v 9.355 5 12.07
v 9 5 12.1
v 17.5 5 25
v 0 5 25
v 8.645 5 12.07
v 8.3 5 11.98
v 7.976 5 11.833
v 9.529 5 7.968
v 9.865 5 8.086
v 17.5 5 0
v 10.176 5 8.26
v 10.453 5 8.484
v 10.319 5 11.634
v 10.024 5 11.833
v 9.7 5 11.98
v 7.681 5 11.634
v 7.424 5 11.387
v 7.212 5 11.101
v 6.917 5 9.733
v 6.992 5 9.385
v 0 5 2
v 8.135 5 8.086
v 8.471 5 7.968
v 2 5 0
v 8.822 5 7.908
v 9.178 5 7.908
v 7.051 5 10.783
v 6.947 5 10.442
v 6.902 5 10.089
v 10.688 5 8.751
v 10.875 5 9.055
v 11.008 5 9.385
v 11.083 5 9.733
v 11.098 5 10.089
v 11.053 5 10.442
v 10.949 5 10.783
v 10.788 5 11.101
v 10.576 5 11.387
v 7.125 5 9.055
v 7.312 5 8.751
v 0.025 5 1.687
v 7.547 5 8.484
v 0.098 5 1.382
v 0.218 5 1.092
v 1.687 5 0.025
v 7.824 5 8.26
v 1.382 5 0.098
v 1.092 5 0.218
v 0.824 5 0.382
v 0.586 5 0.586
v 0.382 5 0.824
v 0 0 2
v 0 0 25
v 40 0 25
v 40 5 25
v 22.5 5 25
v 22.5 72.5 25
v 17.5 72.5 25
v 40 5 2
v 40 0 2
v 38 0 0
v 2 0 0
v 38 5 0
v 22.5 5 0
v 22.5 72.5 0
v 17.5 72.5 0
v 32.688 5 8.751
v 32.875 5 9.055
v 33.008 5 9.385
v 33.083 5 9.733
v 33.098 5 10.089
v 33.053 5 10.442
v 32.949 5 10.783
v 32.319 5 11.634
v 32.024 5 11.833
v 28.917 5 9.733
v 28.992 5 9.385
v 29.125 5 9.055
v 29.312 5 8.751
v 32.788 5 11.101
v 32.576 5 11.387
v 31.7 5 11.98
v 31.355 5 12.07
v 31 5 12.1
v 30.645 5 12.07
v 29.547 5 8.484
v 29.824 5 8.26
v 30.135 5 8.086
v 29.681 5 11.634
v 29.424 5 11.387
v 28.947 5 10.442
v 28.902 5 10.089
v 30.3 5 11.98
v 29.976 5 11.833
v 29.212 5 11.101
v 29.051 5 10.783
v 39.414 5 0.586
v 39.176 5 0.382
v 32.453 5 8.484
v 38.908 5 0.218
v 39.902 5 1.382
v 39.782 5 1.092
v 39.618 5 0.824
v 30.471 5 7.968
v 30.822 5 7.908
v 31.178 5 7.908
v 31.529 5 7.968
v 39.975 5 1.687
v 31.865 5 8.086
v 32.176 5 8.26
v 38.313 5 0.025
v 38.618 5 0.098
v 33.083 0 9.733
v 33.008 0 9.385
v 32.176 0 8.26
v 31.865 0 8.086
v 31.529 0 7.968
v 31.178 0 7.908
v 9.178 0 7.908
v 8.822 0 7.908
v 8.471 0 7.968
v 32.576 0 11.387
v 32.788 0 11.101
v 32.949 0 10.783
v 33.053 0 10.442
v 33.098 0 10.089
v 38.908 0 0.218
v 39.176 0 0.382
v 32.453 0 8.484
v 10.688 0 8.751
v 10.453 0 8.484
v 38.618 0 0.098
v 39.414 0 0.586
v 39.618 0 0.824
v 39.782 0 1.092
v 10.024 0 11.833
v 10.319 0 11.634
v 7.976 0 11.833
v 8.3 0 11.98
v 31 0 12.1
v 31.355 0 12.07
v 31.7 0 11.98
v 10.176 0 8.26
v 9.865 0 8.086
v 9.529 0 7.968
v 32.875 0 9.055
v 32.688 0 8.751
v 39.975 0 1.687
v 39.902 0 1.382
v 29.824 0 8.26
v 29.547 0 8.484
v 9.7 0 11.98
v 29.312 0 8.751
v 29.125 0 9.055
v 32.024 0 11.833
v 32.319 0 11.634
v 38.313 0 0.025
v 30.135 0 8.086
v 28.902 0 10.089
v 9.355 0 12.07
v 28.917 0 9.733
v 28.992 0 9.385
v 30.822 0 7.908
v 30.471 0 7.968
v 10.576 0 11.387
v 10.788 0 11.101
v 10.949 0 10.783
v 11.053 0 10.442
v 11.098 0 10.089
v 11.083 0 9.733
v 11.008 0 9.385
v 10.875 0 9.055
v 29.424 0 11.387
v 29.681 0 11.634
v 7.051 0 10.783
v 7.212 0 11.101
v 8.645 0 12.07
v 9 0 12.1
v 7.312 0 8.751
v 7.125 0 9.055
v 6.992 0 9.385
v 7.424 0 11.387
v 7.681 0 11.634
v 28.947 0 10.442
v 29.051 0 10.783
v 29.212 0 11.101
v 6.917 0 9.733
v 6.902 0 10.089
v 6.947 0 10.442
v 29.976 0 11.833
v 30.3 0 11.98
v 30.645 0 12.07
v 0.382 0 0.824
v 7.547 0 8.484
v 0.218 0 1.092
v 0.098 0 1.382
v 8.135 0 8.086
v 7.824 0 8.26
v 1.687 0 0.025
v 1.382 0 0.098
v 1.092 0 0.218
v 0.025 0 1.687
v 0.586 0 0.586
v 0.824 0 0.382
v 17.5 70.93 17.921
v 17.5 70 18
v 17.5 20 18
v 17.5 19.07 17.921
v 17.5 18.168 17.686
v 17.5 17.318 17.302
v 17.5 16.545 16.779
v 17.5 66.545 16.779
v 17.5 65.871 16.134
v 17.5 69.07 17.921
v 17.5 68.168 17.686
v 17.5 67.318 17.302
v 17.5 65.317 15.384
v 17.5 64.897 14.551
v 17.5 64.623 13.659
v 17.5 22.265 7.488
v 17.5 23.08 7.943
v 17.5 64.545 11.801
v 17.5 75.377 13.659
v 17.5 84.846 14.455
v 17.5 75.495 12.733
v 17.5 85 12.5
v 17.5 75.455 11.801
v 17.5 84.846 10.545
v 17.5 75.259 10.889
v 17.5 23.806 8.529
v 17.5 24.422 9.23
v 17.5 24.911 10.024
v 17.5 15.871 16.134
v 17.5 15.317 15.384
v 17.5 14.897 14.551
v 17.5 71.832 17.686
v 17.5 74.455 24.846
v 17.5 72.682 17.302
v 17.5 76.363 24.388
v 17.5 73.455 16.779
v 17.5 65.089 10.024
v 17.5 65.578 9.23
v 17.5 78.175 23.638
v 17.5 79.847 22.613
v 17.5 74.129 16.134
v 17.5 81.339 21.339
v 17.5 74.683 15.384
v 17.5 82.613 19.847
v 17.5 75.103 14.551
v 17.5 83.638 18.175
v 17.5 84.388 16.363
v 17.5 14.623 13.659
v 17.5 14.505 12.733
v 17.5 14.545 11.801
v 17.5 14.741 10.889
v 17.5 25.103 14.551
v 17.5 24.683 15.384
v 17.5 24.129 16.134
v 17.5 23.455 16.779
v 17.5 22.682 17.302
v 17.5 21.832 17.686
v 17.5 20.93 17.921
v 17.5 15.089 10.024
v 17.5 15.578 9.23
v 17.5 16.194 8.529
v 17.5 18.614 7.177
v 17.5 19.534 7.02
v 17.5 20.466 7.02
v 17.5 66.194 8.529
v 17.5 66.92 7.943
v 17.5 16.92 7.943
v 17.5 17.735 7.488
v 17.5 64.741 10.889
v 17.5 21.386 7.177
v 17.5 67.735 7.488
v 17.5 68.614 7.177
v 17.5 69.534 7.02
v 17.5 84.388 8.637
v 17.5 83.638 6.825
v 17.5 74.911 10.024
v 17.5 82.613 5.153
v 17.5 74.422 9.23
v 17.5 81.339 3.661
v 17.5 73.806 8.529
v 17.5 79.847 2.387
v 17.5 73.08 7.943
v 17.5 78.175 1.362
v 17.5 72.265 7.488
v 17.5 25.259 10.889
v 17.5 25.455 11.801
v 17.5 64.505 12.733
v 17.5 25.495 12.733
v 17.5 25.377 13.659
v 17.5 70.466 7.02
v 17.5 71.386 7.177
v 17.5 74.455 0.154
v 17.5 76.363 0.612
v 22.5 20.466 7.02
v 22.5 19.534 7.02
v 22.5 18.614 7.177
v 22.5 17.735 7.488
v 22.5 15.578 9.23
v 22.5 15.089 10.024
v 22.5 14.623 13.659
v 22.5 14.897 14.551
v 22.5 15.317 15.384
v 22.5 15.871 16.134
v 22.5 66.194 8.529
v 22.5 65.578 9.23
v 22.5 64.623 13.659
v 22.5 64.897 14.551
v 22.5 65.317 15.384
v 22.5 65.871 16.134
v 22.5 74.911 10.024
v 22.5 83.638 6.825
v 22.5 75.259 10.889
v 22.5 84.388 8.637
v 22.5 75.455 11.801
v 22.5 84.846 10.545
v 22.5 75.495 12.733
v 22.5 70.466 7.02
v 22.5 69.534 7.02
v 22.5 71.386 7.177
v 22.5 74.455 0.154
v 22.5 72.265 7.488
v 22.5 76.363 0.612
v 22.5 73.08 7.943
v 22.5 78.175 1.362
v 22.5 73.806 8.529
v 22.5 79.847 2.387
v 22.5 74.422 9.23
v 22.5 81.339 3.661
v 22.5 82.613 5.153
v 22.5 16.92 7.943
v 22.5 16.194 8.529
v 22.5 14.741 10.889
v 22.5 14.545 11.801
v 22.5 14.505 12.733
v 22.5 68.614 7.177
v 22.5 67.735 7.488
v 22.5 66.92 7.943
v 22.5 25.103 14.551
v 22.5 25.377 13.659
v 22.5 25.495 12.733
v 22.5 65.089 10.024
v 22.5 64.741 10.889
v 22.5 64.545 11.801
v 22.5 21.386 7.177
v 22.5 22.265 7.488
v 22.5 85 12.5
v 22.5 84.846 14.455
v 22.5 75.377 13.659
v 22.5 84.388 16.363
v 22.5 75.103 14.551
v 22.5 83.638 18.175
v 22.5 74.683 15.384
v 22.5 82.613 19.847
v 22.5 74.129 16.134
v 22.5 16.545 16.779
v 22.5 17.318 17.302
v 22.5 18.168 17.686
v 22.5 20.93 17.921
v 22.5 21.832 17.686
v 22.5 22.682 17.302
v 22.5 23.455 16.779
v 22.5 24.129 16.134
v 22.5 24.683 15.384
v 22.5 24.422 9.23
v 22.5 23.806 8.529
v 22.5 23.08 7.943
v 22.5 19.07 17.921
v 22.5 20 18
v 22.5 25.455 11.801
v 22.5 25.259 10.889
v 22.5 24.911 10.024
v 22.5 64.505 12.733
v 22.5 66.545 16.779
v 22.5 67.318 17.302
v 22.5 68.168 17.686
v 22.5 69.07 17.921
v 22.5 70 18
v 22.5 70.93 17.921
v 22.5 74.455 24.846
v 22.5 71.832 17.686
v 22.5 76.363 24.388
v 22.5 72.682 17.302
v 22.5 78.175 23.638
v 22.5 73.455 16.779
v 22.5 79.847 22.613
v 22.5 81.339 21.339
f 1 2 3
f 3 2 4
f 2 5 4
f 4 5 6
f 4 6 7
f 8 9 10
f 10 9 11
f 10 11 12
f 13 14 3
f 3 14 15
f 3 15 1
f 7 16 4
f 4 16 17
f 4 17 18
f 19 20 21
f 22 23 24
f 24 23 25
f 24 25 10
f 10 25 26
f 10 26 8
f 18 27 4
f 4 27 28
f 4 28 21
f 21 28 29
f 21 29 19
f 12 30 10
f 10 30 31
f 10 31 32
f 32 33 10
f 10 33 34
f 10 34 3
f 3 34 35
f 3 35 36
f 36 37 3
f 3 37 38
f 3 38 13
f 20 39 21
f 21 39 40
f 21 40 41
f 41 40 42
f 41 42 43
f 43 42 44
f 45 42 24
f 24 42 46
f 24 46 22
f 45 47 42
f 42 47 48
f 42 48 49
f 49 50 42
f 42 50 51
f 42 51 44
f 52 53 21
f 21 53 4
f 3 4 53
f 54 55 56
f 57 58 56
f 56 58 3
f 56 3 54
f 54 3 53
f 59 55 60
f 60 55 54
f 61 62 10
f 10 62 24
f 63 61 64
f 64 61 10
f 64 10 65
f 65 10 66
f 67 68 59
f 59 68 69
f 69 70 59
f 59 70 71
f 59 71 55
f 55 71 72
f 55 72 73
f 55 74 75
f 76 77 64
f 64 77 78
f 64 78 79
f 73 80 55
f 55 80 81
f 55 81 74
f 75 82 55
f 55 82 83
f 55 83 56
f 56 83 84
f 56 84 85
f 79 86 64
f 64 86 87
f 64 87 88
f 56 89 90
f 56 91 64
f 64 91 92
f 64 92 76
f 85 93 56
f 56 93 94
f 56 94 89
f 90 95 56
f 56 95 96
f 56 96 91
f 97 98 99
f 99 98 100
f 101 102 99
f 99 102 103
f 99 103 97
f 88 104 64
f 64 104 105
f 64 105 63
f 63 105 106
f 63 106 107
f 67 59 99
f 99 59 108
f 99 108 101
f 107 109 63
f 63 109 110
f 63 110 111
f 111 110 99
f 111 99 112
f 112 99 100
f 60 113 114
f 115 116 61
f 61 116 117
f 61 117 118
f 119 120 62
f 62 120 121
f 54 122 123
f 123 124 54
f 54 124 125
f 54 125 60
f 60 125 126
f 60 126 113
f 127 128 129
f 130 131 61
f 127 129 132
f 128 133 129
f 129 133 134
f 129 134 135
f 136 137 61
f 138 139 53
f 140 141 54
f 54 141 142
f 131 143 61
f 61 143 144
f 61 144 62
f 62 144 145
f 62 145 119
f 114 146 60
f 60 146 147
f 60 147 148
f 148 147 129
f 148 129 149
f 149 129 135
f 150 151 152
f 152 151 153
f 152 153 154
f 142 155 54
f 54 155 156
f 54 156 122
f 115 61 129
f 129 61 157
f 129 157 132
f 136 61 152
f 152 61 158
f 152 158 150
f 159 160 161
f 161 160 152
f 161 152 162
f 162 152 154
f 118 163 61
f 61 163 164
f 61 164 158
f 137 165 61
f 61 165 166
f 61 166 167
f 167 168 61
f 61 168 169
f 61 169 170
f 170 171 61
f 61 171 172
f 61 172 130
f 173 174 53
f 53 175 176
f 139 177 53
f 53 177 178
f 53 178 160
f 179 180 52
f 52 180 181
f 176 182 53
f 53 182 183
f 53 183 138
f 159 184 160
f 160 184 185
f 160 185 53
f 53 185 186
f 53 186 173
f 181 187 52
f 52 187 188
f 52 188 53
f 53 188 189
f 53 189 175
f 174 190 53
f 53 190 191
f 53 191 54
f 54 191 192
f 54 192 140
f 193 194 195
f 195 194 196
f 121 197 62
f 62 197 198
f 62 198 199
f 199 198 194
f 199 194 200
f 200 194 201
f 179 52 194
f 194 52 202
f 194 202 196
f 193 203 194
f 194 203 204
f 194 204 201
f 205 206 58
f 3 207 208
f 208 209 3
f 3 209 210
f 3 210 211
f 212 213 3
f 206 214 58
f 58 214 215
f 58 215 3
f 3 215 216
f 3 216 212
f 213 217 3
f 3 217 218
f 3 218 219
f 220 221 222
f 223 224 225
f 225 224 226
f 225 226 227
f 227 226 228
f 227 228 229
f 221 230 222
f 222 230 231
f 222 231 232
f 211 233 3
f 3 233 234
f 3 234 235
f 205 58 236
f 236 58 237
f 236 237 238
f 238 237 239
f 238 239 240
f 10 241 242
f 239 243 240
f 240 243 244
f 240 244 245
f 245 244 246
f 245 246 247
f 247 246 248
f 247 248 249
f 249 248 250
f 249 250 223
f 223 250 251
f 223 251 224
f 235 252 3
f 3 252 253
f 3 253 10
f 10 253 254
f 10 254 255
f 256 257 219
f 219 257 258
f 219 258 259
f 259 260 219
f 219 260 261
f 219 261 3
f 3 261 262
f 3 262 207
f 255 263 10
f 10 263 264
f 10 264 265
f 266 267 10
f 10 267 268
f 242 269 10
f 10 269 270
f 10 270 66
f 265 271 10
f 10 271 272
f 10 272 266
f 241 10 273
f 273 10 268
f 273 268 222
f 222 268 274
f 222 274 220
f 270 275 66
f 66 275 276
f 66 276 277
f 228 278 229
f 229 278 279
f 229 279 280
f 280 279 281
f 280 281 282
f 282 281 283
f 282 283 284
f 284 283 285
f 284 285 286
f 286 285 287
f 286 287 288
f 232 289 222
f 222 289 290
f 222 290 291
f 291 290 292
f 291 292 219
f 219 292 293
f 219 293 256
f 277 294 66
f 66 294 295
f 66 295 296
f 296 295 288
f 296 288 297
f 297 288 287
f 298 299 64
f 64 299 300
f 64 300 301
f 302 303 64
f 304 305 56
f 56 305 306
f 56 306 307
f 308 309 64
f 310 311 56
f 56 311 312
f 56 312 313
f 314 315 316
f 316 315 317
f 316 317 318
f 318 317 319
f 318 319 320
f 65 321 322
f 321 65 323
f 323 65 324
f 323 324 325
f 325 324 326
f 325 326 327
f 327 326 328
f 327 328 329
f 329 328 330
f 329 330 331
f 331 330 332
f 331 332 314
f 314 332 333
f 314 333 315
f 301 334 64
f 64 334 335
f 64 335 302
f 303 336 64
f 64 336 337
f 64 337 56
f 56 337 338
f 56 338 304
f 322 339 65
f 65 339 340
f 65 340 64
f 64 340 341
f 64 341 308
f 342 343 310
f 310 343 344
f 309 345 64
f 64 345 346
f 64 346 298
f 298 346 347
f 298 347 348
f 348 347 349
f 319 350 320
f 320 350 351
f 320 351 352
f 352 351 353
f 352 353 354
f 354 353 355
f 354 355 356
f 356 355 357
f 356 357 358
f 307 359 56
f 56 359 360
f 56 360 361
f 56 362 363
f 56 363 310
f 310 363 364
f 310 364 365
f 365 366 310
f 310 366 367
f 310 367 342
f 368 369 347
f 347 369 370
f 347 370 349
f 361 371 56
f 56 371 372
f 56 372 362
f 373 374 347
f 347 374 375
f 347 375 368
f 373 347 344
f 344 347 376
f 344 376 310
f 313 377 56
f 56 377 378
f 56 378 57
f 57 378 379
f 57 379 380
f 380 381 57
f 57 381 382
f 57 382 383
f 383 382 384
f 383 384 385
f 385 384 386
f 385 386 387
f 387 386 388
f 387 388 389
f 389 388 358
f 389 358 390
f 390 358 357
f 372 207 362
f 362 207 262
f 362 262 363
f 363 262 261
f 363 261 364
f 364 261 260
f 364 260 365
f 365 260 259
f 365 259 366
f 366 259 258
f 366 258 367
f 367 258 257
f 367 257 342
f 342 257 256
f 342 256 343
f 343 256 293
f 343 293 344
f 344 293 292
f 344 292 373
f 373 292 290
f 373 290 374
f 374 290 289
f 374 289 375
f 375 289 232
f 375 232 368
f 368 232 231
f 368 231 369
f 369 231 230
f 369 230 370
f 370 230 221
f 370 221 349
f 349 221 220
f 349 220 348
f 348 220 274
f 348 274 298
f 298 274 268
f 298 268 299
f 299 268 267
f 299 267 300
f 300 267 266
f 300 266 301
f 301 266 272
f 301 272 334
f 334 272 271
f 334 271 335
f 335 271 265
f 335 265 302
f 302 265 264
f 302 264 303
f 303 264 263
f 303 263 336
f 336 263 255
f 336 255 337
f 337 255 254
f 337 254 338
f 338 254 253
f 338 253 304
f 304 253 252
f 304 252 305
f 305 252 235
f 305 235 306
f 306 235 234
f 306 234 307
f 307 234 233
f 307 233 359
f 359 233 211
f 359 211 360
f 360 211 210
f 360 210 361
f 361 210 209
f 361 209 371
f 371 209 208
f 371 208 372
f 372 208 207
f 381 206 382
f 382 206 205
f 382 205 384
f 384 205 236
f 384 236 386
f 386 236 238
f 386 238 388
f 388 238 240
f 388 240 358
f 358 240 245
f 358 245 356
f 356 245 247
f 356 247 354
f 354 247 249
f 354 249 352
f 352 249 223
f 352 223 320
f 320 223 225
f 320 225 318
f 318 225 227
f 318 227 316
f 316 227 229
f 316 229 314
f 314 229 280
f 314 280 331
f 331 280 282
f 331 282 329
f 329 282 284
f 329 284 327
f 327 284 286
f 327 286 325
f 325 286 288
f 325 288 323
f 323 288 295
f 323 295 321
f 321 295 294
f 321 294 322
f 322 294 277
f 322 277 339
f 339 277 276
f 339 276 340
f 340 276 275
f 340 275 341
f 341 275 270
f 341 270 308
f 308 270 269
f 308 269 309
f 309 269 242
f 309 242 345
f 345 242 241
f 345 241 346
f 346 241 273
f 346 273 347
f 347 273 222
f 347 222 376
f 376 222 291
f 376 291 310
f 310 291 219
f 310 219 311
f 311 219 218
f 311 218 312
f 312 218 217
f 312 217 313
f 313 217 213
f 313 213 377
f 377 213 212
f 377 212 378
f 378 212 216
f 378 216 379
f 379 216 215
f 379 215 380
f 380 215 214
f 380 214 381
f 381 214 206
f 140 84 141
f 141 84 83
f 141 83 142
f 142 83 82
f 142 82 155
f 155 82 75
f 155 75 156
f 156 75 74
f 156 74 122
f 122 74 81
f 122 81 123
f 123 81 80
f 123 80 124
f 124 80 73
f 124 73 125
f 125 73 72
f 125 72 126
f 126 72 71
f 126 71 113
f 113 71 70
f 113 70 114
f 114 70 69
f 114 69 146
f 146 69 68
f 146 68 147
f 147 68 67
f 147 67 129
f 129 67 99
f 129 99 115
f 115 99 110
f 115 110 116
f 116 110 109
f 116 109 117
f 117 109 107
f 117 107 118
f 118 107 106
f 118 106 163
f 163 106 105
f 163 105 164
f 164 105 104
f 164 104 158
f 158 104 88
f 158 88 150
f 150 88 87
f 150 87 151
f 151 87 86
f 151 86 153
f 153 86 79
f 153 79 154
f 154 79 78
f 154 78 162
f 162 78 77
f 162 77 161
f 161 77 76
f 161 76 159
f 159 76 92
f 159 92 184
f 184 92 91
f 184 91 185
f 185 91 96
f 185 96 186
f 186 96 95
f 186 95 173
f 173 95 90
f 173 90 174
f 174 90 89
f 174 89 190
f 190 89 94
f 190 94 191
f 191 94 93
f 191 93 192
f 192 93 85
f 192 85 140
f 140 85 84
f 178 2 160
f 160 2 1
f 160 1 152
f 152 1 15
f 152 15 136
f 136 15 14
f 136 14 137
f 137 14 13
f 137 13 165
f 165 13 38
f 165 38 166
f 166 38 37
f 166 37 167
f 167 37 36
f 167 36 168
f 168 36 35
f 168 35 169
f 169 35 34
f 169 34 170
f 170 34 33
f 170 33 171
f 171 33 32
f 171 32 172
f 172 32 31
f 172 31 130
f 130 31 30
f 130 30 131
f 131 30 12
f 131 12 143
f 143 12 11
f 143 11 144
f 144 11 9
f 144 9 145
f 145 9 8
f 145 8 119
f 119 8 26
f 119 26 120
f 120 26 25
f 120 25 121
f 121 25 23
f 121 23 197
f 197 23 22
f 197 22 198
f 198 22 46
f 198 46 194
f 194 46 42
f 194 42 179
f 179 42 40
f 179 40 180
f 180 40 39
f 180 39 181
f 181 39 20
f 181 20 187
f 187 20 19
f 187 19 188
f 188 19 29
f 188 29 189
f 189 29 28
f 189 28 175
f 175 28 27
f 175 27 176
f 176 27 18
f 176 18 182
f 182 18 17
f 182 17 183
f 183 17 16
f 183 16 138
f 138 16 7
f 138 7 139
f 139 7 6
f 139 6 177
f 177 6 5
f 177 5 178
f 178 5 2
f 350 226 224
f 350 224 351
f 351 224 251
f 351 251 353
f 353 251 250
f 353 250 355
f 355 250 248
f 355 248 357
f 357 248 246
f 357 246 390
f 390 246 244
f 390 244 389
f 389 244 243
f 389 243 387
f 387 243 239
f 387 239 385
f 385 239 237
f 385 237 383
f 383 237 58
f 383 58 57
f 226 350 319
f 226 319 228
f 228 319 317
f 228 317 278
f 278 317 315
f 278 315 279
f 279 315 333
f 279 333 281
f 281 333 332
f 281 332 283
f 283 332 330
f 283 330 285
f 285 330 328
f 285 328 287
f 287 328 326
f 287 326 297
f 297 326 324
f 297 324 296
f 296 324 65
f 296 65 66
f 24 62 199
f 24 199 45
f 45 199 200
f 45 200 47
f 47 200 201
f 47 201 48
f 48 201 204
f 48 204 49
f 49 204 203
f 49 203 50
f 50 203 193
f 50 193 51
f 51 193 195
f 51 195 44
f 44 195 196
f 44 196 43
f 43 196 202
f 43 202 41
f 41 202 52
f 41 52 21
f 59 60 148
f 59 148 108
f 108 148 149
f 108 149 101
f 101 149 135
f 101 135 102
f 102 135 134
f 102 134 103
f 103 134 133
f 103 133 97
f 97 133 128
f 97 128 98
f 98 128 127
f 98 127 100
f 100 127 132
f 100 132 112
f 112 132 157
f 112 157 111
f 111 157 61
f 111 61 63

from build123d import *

# Parameters (mm, degrees)
SKETCH1_W           = 40
SKETCH1_H           = 25
BOSS_EXTRUDE1_DEPTH = 5
SKETCH3_W           = 5
SKETCH3_H           = 25
BOSS_EXTRUDE2_DEPTH = 80
SKETCH4_R           = 5.5
CUT_EXTRUDE1_DEPTH  = 92.412526494
SKETCH7_R           = 2.1
CUT_EXTRUDE2_DEPTH  = 93.870878105
FILLET1_R           = 12.5
FILLET2_R           = 2


with BuildPart() as part:
    # Sketch1 → Boss-Extrude1 (new body)
    with BuildSketch(Plane(origin=(0, 0, 0), x_dir=(1, 0, 0), z_dir=(0, 1, 0))):
        with Locations((20, -12.5)):
            Rectangle(SKETCH1_W, SKETCH1_H)
    extrude(amount=BOSS_EXTRUDE1_DEPTH)

    # Sketch3 → Boss-Extrude2 (add)
    with BuildSketch(Plane(origin=(0, 5, 0), x_dir=(1, 0, 0), z_dir=(0, 1, 0))):
        with Locations((20, -12.5)):
            Rectangle(SKETCH3_W, SKETCH3_H)
    extrude(amount=BOSS_EXTRUDE2_DEPTH)

    # Sketch4 → Cut-Extrude1 (cut, through all)
    with BuildSketch(Plane.ZY.offset(-17.5)):
        with Locations((12.5, 70)):
            Circle(SKETCH4_R)
        with Locations((12.5, 20)):
            Circle(SKETCH4_R)
    extrude(amount=-CUT_EXTRUDE1_DEPTH, mode=Mode.SUBTRACT)

    # Sketch7 → Cut-Extrude2 (cut, through all)
    with BuildSketch(Plane(origin=(0, 5, 0), x_dir=(1, 0, 0), z_dir=(0, 1, 0))):
        with Locations(Location((9, -10, 0), (0, 0, 270))):
            Circle(SKETCH7_R)
        with Locations(Location((31, -10, 0), (0, 0, 270))):
            Circle(SKETCH7_R)
    extrude(amount=-CUT_EXTRUDE2_DEPTH, mode=Mode.SUBTRACT)

    # Fillet1
    fillet1_edges = [part.edges().sort_by_distance(p)[0] for p in [
        (20, 85, 0),
        (20, 85, 25),
    ]]
    fillet(fillet1_edges, radius=FILLET1_R - 0.0001)  # a hair under: the kernel refuses the full size

    # Fillet2
    fillet2_edges = [part.edges().sort_by_distance(p)[0] for p in [
        (0, 2.5, 0),
        (40, 2.5, 0),
    ]]
    fillet(fillet2_edges, radius=FILLET2_R)


solid = part.part
